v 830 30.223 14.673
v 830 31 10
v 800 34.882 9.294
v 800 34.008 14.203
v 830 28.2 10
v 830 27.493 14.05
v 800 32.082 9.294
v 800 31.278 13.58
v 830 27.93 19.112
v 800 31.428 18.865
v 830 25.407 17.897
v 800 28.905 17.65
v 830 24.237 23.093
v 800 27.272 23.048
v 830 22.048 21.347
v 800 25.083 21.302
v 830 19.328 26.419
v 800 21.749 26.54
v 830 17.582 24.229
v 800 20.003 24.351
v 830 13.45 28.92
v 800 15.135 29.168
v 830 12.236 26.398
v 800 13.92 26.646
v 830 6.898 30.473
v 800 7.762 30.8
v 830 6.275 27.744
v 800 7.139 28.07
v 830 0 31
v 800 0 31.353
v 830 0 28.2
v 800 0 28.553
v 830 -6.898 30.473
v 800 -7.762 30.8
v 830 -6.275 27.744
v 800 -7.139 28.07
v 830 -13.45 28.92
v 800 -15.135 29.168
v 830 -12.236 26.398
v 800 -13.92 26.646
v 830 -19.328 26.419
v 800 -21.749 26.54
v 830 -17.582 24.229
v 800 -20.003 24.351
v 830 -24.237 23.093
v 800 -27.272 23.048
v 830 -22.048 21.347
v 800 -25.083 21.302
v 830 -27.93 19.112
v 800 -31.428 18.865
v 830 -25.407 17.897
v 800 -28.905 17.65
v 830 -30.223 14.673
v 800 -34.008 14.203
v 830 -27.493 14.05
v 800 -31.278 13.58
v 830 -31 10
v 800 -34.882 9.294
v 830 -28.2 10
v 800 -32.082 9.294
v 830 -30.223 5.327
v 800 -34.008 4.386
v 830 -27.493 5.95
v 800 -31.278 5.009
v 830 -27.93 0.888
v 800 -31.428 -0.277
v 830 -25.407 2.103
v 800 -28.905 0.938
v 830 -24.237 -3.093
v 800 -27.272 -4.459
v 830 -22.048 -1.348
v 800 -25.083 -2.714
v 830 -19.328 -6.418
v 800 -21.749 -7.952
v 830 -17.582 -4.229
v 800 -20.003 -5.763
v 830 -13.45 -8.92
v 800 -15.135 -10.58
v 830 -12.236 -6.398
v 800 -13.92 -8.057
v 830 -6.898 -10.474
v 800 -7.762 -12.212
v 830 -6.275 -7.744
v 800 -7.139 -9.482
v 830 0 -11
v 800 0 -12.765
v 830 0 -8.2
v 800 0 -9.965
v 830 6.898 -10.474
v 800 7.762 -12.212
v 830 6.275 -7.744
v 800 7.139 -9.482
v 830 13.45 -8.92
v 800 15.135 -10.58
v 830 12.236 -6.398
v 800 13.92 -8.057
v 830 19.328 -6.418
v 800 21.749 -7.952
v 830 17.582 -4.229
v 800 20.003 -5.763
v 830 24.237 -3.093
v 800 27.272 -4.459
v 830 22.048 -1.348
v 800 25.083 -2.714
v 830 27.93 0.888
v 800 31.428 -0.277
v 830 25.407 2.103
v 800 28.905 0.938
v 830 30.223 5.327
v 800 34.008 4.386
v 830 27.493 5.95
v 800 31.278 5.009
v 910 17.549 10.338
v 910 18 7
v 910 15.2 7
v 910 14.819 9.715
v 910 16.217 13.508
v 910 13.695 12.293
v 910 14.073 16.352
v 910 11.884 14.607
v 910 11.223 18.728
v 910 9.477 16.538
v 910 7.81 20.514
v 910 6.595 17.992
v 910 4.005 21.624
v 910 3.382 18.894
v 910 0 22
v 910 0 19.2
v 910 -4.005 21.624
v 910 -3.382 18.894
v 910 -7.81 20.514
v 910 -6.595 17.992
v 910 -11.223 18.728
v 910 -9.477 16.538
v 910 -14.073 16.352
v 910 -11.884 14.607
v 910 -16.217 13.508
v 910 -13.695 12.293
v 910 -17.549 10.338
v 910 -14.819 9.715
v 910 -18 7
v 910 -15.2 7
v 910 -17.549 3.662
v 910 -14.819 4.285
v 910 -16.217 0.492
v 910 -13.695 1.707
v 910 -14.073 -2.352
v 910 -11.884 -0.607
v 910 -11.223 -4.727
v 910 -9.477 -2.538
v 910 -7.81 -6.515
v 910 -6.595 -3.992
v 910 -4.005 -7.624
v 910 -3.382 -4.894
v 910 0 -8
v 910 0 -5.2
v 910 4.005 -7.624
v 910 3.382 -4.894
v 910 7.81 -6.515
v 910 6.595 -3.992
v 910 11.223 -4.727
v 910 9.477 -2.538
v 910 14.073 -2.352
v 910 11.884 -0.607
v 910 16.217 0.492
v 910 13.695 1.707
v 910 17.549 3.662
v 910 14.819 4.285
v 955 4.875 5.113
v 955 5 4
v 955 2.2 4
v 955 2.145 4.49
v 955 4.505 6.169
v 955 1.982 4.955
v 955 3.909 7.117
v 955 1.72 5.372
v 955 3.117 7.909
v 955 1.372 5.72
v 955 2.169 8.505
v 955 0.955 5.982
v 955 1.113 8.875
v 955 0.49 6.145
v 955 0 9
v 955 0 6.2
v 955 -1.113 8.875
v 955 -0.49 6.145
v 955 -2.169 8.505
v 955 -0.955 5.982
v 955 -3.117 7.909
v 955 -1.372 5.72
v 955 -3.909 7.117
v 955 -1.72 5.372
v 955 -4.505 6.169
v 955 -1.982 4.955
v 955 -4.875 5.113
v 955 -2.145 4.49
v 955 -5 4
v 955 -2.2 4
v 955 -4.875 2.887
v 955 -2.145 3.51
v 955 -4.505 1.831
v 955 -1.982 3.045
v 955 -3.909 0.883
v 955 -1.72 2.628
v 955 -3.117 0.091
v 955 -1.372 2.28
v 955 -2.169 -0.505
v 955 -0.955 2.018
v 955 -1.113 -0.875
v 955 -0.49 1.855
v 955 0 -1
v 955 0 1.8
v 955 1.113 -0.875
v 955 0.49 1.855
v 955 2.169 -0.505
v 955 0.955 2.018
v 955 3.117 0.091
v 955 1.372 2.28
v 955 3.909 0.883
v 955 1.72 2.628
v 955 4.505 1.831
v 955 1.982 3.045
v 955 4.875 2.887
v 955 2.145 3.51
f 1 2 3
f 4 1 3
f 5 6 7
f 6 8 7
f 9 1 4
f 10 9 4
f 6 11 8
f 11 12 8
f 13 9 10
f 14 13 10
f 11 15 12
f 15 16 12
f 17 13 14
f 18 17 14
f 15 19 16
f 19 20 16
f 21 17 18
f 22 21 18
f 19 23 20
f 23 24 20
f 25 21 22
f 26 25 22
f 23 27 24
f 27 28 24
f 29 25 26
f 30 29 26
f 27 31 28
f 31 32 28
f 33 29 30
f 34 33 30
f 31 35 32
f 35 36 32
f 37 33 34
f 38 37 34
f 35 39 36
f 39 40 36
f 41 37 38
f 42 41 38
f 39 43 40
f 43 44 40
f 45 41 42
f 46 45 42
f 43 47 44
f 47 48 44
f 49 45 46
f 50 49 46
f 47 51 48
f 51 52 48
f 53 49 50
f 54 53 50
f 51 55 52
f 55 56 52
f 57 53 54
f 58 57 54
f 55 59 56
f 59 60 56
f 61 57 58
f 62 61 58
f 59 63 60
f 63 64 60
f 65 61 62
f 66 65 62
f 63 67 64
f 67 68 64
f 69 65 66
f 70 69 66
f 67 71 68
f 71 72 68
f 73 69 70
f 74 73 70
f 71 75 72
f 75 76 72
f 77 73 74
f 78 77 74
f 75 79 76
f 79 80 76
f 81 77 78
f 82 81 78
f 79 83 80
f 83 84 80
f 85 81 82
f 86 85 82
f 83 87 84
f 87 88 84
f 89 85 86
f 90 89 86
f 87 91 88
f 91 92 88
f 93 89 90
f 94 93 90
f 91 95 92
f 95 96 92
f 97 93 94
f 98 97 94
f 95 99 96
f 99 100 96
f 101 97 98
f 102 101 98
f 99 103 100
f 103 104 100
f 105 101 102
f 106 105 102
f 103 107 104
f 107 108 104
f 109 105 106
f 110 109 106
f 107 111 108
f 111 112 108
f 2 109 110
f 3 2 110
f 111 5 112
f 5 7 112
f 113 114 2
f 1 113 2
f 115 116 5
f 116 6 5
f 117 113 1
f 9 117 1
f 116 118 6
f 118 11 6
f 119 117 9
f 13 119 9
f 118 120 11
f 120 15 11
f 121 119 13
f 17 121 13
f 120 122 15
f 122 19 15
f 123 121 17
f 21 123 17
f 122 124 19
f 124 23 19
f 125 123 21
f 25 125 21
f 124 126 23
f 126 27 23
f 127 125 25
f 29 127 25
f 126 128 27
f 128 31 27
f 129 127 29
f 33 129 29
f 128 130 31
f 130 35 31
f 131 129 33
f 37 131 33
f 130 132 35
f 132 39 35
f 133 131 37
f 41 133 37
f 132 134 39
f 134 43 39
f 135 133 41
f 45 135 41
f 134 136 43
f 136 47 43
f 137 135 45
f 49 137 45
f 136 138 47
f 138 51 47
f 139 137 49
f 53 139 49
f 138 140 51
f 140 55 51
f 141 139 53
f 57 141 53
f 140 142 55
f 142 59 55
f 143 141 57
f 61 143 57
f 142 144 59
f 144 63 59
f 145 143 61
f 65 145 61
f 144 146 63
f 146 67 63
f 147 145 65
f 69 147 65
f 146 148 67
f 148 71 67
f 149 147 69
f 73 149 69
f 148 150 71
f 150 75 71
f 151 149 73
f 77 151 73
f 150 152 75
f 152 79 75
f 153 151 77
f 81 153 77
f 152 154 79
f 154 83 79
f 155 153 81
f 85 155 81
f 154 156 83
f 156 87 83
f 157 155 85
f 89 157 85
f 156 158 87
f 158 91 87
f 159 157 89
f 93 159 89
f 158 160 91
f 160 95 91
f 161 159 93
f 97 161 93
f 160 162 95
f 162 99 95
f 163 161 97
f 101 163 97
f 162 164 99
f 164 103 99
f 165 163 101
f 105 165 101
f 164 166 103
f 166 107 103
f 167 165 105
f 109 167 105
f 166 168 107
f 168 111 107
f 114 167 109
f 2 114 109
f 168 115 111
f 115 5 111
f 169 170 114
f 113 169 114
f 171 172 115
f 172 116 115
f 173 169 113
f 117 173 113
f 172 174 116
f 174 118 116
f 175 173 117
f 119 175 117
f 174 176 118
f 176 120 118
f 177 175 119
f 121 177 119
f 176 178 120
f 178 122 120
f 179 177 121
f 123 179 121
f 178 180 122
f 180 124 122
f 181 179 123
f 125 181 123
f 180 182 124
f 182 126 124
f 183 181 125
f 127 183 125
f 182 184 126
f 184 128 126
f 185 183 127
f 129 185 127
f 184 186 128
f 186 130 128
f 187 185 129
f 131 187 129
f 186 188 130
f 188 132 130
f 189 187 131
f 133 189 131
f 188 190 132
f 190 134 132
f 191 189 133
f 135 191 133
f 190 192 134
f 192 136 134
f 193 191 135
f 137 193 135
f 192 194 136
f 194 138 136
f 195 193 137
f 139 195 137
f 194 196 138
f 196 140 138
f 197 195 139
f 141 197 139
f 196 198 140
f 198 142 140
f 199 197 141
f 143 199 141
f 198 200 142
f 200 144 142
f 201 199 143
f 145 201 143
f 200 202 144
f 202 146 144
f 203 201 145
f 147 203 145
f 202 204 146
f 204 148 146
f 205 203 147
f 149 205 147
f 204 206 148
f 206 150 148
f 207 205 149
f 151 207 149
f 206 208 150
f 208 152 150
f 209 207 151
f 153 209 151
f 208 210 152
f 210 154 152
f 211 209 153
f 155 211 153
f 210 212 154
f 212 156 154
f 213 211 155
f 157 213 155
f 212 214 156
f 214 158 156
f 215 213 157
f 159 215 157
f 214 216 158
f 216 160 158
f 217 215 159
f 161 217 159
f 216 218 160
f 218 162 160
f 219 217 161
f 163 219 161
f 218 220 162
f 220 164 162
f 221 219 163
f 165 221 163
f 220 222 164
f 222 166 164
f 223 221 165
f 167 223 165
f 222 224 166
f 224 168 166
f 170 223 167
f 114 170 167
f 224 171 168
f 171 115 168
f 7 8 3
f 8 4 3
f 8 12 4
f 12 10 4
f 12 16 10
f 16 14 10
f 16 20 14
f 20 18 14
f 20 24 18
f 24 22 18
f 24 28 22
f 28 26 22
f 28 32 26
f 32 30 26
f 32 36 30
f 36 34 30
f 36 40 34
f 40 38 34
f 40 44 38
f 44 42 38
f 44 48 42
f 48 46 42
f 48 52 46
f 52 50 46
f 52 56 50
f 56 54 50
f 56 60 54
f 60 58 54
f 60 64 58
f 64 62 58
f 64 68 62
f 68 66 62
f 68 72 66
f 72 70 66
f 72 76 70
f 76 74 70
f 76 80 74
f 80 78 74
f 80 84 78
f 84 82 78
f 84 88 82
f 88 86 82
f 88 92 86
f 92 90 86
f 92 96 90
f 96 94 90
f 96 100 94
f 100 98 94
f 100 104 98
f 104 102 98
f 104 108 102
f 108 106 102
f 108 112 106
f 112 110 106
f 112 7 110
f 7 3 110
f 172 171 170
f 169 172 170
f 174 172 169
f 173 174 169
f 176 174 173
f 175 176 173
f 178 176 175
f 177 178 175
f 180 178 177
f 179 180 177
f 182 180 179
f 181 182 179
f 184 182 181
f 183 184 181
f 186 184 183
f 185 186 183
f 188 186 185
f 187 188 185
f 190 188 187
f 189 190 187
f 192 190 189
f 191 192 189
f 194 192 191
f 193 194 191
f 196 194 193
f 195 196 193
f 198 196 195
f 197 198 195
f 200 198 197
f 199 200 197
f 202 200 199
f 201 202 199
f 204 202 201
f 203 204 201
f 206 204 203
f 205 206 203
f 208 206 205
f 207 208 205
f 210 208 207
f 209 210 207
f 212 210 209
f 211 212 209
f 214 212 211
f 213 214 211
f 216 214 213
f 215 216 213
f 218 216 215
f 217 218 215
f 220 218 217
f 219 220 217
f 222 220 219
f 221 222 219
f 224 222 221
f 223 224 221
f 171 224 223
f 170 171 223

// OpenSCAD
polyhedron(points=[[800.0, 34.882353, 9.294118], [800.0, 34.00778, 14.202668], [800.0, 31.427914, 18.865082], [800.0, 27.272122, 23.047569], [800.0, 21.748791, 26.5404], [800.0, 15.134886, 29.168431], [800.0, 7.762054, 30.79988], [800.0, 0.0, 31.352941], [800.0, -7.762054, 30.79988], [800.0, -15.134886, 29.168431], [800.0, -21.748791, 26.5404], [800.0, -27.272122, 23.047569], [800.0, -31.427914, 18.865082], [800.0, -34.00778, 14.202668], [800.0, -34.882353, 9.294118], [800.0, -34.00778, 4.385568], [800.0, -31.427914, -0.276847], [800.0, -27.272122, -4.459334], [800.0, -21.748791, -7.952165], [800.0, -15.134886, -10.580196], [800.0, -7.762054, -12.211645], [800.0, -0.0, -12.764706], [800.0, 7.762054, -12.211645], [800.0, 15.134886, -10.580196], [800.0, 21.748791, -7.952165], [800.0, 27.272122, -4.459334], [800.0, 31.427914, -0.276847], [800.0, 34.00778, 4.385568], [800.0, 32.082353, 9.294118], [800.0, 31.277981, 13.579609], [800.0, 28.905201, 17.650208], [800.0, 25.082994, 21.301798], [800.0, 20.00302, 24.351272], [800.0, 13.920011, 26.645718], [800.0, 7.138995, 28.070082], [800.0, 0.0, 28.552941], [800.0, -7.138995, 28.070082], [800.0, -13.920011, 26.645718], [800.0, -20.00302, 24.351272], [800.0, -25.082994, 21.301798], [800.0, -28.905201, 17.650208], [800.0, -31.277981, 13.579609], [800.0, -32.082353, 9.294118], [800.0, -31.277981, 5.008626], [800.0, -28.905201, 0.938027], [800.0, -25.082994, -2.713562], [800.0, -20.00302, -5.763037], [800.0, -13.920011, -8.057483], [800.0, -7.138995, -9.481847], [800.0, -0.0, -9.964706], [800.0, 7.138995, -9.481847], [800.0, 13.920011, -8.057483], [800.0, 20.00302, -5.763037], [800.0, 25.082994, -2.713562], [800.0, 28.905201, 0.938027], [800.0, 31.277981, 5.008626], [830.0, 31.0, 10.0], [830.0, 30.222765, 14.67294], [830.0, 27.930035, 19.111559], [830.0, 24.236776, 23.093286], [830.0, 19.328184, 26.418461], [830.0, 13.450396, 28.920346], [830.0, 6.898149, 30.473486], [830.0, 0.0, 31.0], [830.0, -6.898149, 30.473486], [830.0, -13.450396, 28.920346], [830.0, -19.328184, 26.418461], [830.0, -24.236776, 23.093286], [830.0, -27.930035, 19.111559], [830.0, -30.222765, 14.67294], [830.0, -31.0, 10.0], [830.0, -30.222765, 5.32706], [830.0, -27.930035, 0.888441], [830.0, -24.236776, -3.093286], [830.0, -19.328184, -6.418461], [830.0, -13.450396, -8.920346], [830.0, -6.898149, -10.473486], [830.0, -0.0, -11.0], [830.0, 6.898149, -10.473486], [830.0, 13.450396, -8.920346], [830.0, 19.328184, -6.418461], [830.0, 24.236776, -3.093286], [830.0, 27.930035, 0.888441], [830.0, 30.222765, 5.32706], [830.0, 28.2, 10.0], [830.0, 27.492967, 14.049881], [830.0, 25.407322, 17.896684], [830.0, 22.047648, 21.347514], [830.0, 17.582412, 24.229333], [830.0, 12.235521, 26.397633], [830.0, 6.27509, 27.743688], [830.0, 0.0, 28.2], [830.0, -6.27509, 27.743688], [830.0, -12.235521, 26.397633], [830.0, -17.582412, 24.229333], [830.0, -22.047648, 21.347514], [830.0, -25.407322, 17.896684], [830.0, -27.492967, 14.049881], [830.0, -28.2, 10.0], [830.0, -27.492967, 5.950119], [830.0, -25.407322, 2.103316], [830.0, -22.047648, -1.347514], [830.0, -17.582412, -4.229333], [830.0, -12.235521, -6.397633], [830.0, -6.27509, -7.743688], [830.0, -0.0, -8.2], [830.0, 6.27509, -7.743688], [830.0, 12.235521, -6.397633], [830.0, 17.582412, -4.229333], [830.0, 22.047648, -1.347514], [830.0, 25.407322, 2.103316], [830.0, 27.492967, 5.950119], [910.0, 18.0, 7.0], [910.0, 17.548702, 10.337814], [910.0, 16.21744, 13.508256], [910.0, 14.072967, 16.352347], [910.0, 11.222816, 18.727472], [910.0, 7.809907, 20.514533], [910.0, 4.005377, 21.623919], [910.0, 0.0, 22.0], [910.0, -4.005377, 21.623919], [910.0, -7.809907, 20.514533], [910.0, -11.222816, 18.727472], [910.0, -14.072967, 16.352347], [910.0, -16.21744, 13.508256], [910.0, -17.548702, 10.337814], [910.0, -18.0, 7.0], [910.0, -17.548702, 3.662186], [910.0, -16.21744, 0.491744], [910.0, -14.072967, -2.352347], [910.0, -11.222816, -4.727472], [910.0, -7.809907, -6.514533], [910.0, -4.005377, -7.623919], [910.0, -0.0, -8.0], [910.0, 4.005377, -7.623919], [910.0, 7.809907, -6.514533], [910.0, 11.222816, -4.727472], [910.0, 14.072967, -2.352347], [910.0, 16.21744, 0.491744], [910.0, 17.548702, 3.662186], [910.0, 15.2, 7.0], [910.0, 14.818904, 9.714755], [910.0, 13.694727, 12.293382], [910.0, 11.883839, 14.606576], [910.0, 9.477045, 16.538344], [910.0, 6.595033, 17.99182], [910.0, 3.382318, 18.894121], [910.0, 0.0, 19.2], [910.0, -3.382318, 18.894121], [910.0, -6.595033, 17.99182], [910.0, -9.477045, 16.538344], [910.0, -11.883839, 14.606576], [910.0, -13.694727, 12.293382], [910.0, -14.818904, 9.714755], [910.0, -15.2, 7.0], [910.0, -14.818904, 4.285245], [910.0, -13.694727, 1.706618], [910.0, -11.883839, -0.606576], [910.0, -9.477045, -2.538344], [910.0, -6.595033, -3.99182], [910.0, -3.382318, -4.894121], [910.0, -0.0, -5.2], [910.0, 3.382318, -4.894121], [910.0, 6.595033, -3.99182], [910.0, 9.477045, -2.538344], [910.0, 11.883839, -0.606576], [910.0, 13.694727, 1.706618], [910.0, 14.818904, 4.285245], [955.0, 5.0, 4.0], [955.0, 4.87464, 5.112605], [955.0, 4.504844, 6.169419], [955.0, 3.909157, 7.117449], [955.0, 3.117449, 7.909157], [955.0, 2.169419, 8.504844], [955.0, 1.112605, 8.87464], [955.0, 0.0, 9.0], [955.0, -1.112605, 8.87464], [955.0, -2.169419, 8.504844], [955.0, -3.117449, 7.909157], [955.0, -3.909157, 7.117449], [955.0, -4.504844, 6.169419], [955.0, -4.87464, 5.112605], [955.0, -5.0, 4.0], [955.0, -4.87464, 2.887395], [955.0, -4.504844, 1.830581], [955.0, -3.909157, 0.882551], [955.0, -3.117449, 0.090843], [955.0, -2.169419, -0.504844], [955.0, -1.112605, -0.87464], [955.0, -0.0, -1.0], [955.0, 1.112605, -0.87464], [955.0, 2.169419, -0.504844], [955.0, 3.117449, 0.090843], [955.0, 3.909157, 0.882551], [955.0, 4.504844, 1.830581], [955.0, 4.87464, 2.887395], [955.0, 2.2, 4.0], [955.0, 2.144841, 4.489546], [955.0, 1.982132, 4.954544], [955.0, 1.720029, 5.371678], [955.0, 1.371678, 5.720029], [955.0, 0.954544, 5.982132], [955.0, 0.489546, 6.144841], [955.0, 0.0, 6.2], [955.0, -0.489546, 6.144841], [955.0, -0.954544, 5.982132], [955.0, -1.371678, 5.720029], [955.0, -1.720029, 5.371678], [955.0, -1.982132, 4.954544], [955.0, -2.144841, 4.489546], [955.0, -2.2, 4.0], [955.0, -2.144841, 3.510454], [955.0, -1.982132, 3.045456], [955.0, -1.720029, 2.628322], [955.0, -1.371678, 2.279971], [955.0, -0.954544, 2.017868], [955.0, -0.489546, 1.855159], [955.0, -0.0, 1.8], [955.0, 0.489546, 1.855159], [955.0, 0.954544, 2.017868], [955.0, 1.371678, 2.279971], [955.0, 1.720029, 2.628322], [955.0, 1.982132, 3.045456], [955.0, 2.144841, 3.510454]], faces=[[0, 56, 57], [0, 57, 1], [28, 85, 84], [28, 29, 85], [1, 57, 58], [1, 58, 2], [29, 86, 85], [29, 30, 86], [2, 58, 59], [2, 59, 3], [30, 87, 86], [30, 31, 87], [3, 59, 60], [3, 60, 4], [31, 88, 87], [31, 32, 88], [4, 60, 61], [4, 61, 5], [32, 89, 88], [32, 33, 89], [5, 61, 62], [5, 62, 6], [33, 90, 89], [33, 34, 90], [6, 62, 63], [6, 63, 7], [34, 91, 90], [34, 35, 91], [7, 63, 64], [7, 64, 8], [35, 92, 91], [35, 36, 92], [8, 64, 65], [8, 65, 9], [36, 93, 92], [36, 37, 93], [9, 65, 66], [9, 66, 10], [37, 94, 93], [37, 38, 94], [10, 66, 67], [10, 67, 11], [38, 95, 94], [38, 39, 95], [11, 67, 68], [11, 68, 12], [39, 96, 95], [39, 40, 96], [12, 68, 69], [12, 69, 13], [40, 97, 96], [40, 41, 97], [13, 69, 70], [13, 70, 14], [41, 98, 97], [41, 42, 98], [14, 70, 71], [14, 71, 15], [42, 99, 98], [42, 43, 99], [15, 71, 72], [15, 72, 16], [43, 100, 99], [43, 44, 100], [16, 72, 73], [16, 73, 17], [44, 101, 100], [44, 45, 101], [17, 73, 74], [17, 74, 18], [45, 102, 101], [45, 46, 102], [18, 74, 75], [18, 75, 19], [46, 103, 102], [46, 47, 103], [19, 75, 76], [19, 76, 20], [47, 104, 103], [47, 48, 104], [20, 76, 77], [20, 77, 21], [48, 105, 104], [48, 49, 105], [21, 77, 78], [21, 78, 22], [49, 106, 105], [49, 50, 106], [22, 78, 79], [22, 79, 23], [50, 107, 106], [50, 51, 107], [23, 79, 80], [23, 80, 24], [51, 108, 107], [51, 52, 108], [24, 80, 81], [24, 81, 25], [52, 109, 108], [52, 53, 109], [25, 81, 82], [25, 82, 26], [53, 110, 109], [53, 54, 110], [26, 82, 83], [26, 83, 27], [54, 111, 110], [54, 55, 111], [27, 83, 56], [27, 56, 0], [55, 84, 111], [55, 28, 84], [56, 112, 113], [56, 113, 57], [84, 141, 140], [84, 85, 141], [57, 113, 114], [57, 114, 58], [85, 142, 141], [85, 86, 142], [58, 114, 115], [58, 115, 59], [86, 143, 142], [86, 87, 143], [59, 115, 116], [59, 116, 60], [87, 144, 143], [87, 88, 144], [60, 116, 117], [60, 117, 61], [88, 145, 144], [88, 89, 145], [61, 117, 118], [61, 118, 62], [89, 146, 145], [89, 90, 146], [62, 118, 119], [62, 119, 63], [90, 147, 146], [90, 91, 147], [63, 119, 120], [63, 120, 64], [91, 148, 147], [91, 92, 148], [64, 120, 121], [64, 121, 65], [92, 149, 148], [92, 93, 149], [65, 121, 122], [65, 122, 66], [93, 150, 149], [93, 94, 150], [66, 122, 123], [66, 123, 67], [94, 151, 150], [94, 95, 151], [67, 123, 124], [67, 124, 68], [95, 152, 151], [95, 96, 152], [68, 124, 125], [68, 125, 69], [96, 153, 152], [96, 97, 153], [69, 125, 126], [69, 126, 70], [97, 154, 153], [97, 98, 154], [70, 126, 127], [70, 127, 71], [98, 155, 154], [98, 99, 155], [71, 127, 128], [71, 128, 72], [99, 156, 155], [99, 100, 156], [72, 128, 129], [72, 129, 73], [100, 157, 156], [100, 101, 157], [73, 129, 130], [73, 130, 74], [101, 158, 157], [101, 102, 158], [74, 130, 131], [74, 131, 75], [102, 159, 158], [102, 103, 159], [75, 131, 132], [75, 132, 76], [103, 160, 159], [103, 104, 160], [76, 132, 133], [76, 133, 77], [104, 161, 160], [104, 105, 161], [77, 133, 134], [77, 134, 78], [105, 162, 161], [105, 106, 162], [78, 134, 135], [78, 135, 79], [106, 163, 162], [106, 107, 163], [79, 135, 136], [79, 136, 80], [107, 164, 163], [107, 108, 164], [80, 136, 137], [80, 137, 81], [108, 165, 164], [108, 109, 165], [81, 137, 138], [81, 138, 82], [109, 166, 165], [109, 110, 166], [82, 138, 139], [82, 139, 83], [110, 167, 166], [110, 111, 167], [83, 139, 112], [83, 112, 56], [111, 140, 167], [111, 84, 140], [112, 168, 169], [112, 169, 113], [140, 197, 196], [140, 141, 197], [113, 169, 170], [113, 170, 114], [141, 198, 197], [141, 142, 198], [114, 170, 171], [114, 171, 115], [142, 199, 198], [142, 143, 199], [115, 171, 172], [115, 172, 116], [143, 200, 199], [143, 144, 200], [116, 172, 173], [116, 173, 117], [144, 201, 200], [144, 145, 201], [117, 173, 174], [117, 174, 118], [145, 202, 201], [145, 146, 202], [118, 174, 175], [118, 175, 119], [146, 203, 202], [146, 147, 203], [119, 175, 176], [119, 176, 120], [147, 204, 203], [147, 148, 204], [120, 176, 177], [120, 177, 121], [148, 205, 204], [148, 149, 205], [121, 177, 178], [121, 178, 122], [149, 206, 205], [149, 150, 206], [122, 178, 179], [122, 179, 123], [150, 207, 206], [150, 151, 207], [123, 179, 180], [123, 180, 124], [151, 208, 207], [151, 152, 208], [124, 180, 181], [124, 181, 125], [152, 209, 208], [152, 153, 209], [125, 181, 182], [125, 182, 126], [153, 210, 209], [153, 154, 210], [126, 182, 183], [126, 183, 127], [154, 211, 210], [154, 155, 211], [127, 183, 184], [127, 184, 128], [155, 212, 211], [155, 156, 212], [128, 184, 185], [128, 185, 129], [156, 213, 212], [156, 157, 213], [129, 185, 186], [129, 186, 130], [157, 214, 213], [157, 158, 214], [130, 186, 187], [130, 187, 131], [158, 215, 214], [158, 159, 215], [131, 187, 188], [131, 188, 132], [159, 216, 215], [159, 160, 216], [132, 188, 189], [132, 189, 133], [160, 217, 216], [160, 161, 217], [133, 189, 190], [133, 190, 134], [161, 218, 217], [161, 162, 218], [134, 190, 191], [134, 191, 135], [162, 219, 218], [162, 163, 219], [135, 191, 192], [135, 192, 136], [163, 220, 219], [163, 164, 220], [136, 192, 193], [136, 193, 137], [164, 221, 220], [164, 165, 221], [137, 193, 194], [137, 194, 138], [165, 222, 221], [165, 166, 222], [138, 194, 195], [138, 195, 139], [166, 223, 222], [166, 167, 223], [139, 195, 168], [139, 168, 112], [167, 196, 223], [167, 140, 196], [0, 29, 28], [0, 1, 29], [1, 30, 29], [1, 2, 30], [2, 31, 30], [2, 3, 31], [3, 32, 31], [3, 4, 32], [4, 33, 32], [4, 5, 33], [5, 34, 33], [5, 6, 34], [6, 35, 34], [6, 7, 35], [7, 36, 35], [7, 8, 36], [8, 37, 36], [8, 9, 37], [9, 38, 37], [9, 10, 38], [10, 39, 38], [10, 11, 39], [11, 40, 39], [11, 12, 40], [12, 41, 40], [12, 13, 41], [13, 42, 41], [13, 14, 42], [14, 43, 42], [14, 15, 43], [15, 44, 43], [15, 16, 44], [16, 45, 44], [16, 17, 45], [17, 46, 45], [17, 18, 46], [18, 47, 46], [18, 19, 47], [19, 48, 47], [19, 20, 48], [20, 49, 48], [20, 21, 49], [21, 50, 49], [21, 22, 50], [22, 51, 50], [22, 23, 51], [23, 52, 51], [23, 24, 52], [24, 53, 52], [24, 25, 53], [25, 54, 53], [25, 26, 54], [26, 55, 54], [26, 27, 55], [27, 28, 55], [27, 0, 28], [168, 196, 197], [168, 197, 169], [169, 197, 198], [169, 198, 170], [170, 198, 199], [170, 199, 171], [171, 199, 200], [171, 200, 172], [172, 200, 201], [172, 201, 173], [173, 201, 202], [173, 202, 174], [174, 202, 203], [174, 203, 175], [175, 203, 204], [175, 204, 176], [176, 204, 205], [176, 205, 177], [177, 205, 206], [177, 206, 178], [178, 206, 207], [178, 207, 179], [179, 207, 208], [179, 208, 180], [180, 208, 209], [180, 209, 181], [181, 209, 210], [181, 210, 182], [182, 210, 211], [182, 211, 183], [183, 211, 212], [183, 212, 184], [184, 212, 213], [184, 213, 185], [185, 213, 214], [185, 214, 186], [186, 214, 215], [186, 215, 187], [187, 215, 216], [187, 216, 188], [188, 216, 217], [188, 217, 189], [189, 217, 218], [189, 218, 190], [190, 218, 219], [190, 219, 191], [191, 219, 220], [191, 220, 192], [192, 220, 221], [192, 221, 193], [193, 221, 222], [193, 222, 194], [194, 222, 223], [194, 223, 195], [195, 223, 196], [195, 196, 168]], convexity=20);
